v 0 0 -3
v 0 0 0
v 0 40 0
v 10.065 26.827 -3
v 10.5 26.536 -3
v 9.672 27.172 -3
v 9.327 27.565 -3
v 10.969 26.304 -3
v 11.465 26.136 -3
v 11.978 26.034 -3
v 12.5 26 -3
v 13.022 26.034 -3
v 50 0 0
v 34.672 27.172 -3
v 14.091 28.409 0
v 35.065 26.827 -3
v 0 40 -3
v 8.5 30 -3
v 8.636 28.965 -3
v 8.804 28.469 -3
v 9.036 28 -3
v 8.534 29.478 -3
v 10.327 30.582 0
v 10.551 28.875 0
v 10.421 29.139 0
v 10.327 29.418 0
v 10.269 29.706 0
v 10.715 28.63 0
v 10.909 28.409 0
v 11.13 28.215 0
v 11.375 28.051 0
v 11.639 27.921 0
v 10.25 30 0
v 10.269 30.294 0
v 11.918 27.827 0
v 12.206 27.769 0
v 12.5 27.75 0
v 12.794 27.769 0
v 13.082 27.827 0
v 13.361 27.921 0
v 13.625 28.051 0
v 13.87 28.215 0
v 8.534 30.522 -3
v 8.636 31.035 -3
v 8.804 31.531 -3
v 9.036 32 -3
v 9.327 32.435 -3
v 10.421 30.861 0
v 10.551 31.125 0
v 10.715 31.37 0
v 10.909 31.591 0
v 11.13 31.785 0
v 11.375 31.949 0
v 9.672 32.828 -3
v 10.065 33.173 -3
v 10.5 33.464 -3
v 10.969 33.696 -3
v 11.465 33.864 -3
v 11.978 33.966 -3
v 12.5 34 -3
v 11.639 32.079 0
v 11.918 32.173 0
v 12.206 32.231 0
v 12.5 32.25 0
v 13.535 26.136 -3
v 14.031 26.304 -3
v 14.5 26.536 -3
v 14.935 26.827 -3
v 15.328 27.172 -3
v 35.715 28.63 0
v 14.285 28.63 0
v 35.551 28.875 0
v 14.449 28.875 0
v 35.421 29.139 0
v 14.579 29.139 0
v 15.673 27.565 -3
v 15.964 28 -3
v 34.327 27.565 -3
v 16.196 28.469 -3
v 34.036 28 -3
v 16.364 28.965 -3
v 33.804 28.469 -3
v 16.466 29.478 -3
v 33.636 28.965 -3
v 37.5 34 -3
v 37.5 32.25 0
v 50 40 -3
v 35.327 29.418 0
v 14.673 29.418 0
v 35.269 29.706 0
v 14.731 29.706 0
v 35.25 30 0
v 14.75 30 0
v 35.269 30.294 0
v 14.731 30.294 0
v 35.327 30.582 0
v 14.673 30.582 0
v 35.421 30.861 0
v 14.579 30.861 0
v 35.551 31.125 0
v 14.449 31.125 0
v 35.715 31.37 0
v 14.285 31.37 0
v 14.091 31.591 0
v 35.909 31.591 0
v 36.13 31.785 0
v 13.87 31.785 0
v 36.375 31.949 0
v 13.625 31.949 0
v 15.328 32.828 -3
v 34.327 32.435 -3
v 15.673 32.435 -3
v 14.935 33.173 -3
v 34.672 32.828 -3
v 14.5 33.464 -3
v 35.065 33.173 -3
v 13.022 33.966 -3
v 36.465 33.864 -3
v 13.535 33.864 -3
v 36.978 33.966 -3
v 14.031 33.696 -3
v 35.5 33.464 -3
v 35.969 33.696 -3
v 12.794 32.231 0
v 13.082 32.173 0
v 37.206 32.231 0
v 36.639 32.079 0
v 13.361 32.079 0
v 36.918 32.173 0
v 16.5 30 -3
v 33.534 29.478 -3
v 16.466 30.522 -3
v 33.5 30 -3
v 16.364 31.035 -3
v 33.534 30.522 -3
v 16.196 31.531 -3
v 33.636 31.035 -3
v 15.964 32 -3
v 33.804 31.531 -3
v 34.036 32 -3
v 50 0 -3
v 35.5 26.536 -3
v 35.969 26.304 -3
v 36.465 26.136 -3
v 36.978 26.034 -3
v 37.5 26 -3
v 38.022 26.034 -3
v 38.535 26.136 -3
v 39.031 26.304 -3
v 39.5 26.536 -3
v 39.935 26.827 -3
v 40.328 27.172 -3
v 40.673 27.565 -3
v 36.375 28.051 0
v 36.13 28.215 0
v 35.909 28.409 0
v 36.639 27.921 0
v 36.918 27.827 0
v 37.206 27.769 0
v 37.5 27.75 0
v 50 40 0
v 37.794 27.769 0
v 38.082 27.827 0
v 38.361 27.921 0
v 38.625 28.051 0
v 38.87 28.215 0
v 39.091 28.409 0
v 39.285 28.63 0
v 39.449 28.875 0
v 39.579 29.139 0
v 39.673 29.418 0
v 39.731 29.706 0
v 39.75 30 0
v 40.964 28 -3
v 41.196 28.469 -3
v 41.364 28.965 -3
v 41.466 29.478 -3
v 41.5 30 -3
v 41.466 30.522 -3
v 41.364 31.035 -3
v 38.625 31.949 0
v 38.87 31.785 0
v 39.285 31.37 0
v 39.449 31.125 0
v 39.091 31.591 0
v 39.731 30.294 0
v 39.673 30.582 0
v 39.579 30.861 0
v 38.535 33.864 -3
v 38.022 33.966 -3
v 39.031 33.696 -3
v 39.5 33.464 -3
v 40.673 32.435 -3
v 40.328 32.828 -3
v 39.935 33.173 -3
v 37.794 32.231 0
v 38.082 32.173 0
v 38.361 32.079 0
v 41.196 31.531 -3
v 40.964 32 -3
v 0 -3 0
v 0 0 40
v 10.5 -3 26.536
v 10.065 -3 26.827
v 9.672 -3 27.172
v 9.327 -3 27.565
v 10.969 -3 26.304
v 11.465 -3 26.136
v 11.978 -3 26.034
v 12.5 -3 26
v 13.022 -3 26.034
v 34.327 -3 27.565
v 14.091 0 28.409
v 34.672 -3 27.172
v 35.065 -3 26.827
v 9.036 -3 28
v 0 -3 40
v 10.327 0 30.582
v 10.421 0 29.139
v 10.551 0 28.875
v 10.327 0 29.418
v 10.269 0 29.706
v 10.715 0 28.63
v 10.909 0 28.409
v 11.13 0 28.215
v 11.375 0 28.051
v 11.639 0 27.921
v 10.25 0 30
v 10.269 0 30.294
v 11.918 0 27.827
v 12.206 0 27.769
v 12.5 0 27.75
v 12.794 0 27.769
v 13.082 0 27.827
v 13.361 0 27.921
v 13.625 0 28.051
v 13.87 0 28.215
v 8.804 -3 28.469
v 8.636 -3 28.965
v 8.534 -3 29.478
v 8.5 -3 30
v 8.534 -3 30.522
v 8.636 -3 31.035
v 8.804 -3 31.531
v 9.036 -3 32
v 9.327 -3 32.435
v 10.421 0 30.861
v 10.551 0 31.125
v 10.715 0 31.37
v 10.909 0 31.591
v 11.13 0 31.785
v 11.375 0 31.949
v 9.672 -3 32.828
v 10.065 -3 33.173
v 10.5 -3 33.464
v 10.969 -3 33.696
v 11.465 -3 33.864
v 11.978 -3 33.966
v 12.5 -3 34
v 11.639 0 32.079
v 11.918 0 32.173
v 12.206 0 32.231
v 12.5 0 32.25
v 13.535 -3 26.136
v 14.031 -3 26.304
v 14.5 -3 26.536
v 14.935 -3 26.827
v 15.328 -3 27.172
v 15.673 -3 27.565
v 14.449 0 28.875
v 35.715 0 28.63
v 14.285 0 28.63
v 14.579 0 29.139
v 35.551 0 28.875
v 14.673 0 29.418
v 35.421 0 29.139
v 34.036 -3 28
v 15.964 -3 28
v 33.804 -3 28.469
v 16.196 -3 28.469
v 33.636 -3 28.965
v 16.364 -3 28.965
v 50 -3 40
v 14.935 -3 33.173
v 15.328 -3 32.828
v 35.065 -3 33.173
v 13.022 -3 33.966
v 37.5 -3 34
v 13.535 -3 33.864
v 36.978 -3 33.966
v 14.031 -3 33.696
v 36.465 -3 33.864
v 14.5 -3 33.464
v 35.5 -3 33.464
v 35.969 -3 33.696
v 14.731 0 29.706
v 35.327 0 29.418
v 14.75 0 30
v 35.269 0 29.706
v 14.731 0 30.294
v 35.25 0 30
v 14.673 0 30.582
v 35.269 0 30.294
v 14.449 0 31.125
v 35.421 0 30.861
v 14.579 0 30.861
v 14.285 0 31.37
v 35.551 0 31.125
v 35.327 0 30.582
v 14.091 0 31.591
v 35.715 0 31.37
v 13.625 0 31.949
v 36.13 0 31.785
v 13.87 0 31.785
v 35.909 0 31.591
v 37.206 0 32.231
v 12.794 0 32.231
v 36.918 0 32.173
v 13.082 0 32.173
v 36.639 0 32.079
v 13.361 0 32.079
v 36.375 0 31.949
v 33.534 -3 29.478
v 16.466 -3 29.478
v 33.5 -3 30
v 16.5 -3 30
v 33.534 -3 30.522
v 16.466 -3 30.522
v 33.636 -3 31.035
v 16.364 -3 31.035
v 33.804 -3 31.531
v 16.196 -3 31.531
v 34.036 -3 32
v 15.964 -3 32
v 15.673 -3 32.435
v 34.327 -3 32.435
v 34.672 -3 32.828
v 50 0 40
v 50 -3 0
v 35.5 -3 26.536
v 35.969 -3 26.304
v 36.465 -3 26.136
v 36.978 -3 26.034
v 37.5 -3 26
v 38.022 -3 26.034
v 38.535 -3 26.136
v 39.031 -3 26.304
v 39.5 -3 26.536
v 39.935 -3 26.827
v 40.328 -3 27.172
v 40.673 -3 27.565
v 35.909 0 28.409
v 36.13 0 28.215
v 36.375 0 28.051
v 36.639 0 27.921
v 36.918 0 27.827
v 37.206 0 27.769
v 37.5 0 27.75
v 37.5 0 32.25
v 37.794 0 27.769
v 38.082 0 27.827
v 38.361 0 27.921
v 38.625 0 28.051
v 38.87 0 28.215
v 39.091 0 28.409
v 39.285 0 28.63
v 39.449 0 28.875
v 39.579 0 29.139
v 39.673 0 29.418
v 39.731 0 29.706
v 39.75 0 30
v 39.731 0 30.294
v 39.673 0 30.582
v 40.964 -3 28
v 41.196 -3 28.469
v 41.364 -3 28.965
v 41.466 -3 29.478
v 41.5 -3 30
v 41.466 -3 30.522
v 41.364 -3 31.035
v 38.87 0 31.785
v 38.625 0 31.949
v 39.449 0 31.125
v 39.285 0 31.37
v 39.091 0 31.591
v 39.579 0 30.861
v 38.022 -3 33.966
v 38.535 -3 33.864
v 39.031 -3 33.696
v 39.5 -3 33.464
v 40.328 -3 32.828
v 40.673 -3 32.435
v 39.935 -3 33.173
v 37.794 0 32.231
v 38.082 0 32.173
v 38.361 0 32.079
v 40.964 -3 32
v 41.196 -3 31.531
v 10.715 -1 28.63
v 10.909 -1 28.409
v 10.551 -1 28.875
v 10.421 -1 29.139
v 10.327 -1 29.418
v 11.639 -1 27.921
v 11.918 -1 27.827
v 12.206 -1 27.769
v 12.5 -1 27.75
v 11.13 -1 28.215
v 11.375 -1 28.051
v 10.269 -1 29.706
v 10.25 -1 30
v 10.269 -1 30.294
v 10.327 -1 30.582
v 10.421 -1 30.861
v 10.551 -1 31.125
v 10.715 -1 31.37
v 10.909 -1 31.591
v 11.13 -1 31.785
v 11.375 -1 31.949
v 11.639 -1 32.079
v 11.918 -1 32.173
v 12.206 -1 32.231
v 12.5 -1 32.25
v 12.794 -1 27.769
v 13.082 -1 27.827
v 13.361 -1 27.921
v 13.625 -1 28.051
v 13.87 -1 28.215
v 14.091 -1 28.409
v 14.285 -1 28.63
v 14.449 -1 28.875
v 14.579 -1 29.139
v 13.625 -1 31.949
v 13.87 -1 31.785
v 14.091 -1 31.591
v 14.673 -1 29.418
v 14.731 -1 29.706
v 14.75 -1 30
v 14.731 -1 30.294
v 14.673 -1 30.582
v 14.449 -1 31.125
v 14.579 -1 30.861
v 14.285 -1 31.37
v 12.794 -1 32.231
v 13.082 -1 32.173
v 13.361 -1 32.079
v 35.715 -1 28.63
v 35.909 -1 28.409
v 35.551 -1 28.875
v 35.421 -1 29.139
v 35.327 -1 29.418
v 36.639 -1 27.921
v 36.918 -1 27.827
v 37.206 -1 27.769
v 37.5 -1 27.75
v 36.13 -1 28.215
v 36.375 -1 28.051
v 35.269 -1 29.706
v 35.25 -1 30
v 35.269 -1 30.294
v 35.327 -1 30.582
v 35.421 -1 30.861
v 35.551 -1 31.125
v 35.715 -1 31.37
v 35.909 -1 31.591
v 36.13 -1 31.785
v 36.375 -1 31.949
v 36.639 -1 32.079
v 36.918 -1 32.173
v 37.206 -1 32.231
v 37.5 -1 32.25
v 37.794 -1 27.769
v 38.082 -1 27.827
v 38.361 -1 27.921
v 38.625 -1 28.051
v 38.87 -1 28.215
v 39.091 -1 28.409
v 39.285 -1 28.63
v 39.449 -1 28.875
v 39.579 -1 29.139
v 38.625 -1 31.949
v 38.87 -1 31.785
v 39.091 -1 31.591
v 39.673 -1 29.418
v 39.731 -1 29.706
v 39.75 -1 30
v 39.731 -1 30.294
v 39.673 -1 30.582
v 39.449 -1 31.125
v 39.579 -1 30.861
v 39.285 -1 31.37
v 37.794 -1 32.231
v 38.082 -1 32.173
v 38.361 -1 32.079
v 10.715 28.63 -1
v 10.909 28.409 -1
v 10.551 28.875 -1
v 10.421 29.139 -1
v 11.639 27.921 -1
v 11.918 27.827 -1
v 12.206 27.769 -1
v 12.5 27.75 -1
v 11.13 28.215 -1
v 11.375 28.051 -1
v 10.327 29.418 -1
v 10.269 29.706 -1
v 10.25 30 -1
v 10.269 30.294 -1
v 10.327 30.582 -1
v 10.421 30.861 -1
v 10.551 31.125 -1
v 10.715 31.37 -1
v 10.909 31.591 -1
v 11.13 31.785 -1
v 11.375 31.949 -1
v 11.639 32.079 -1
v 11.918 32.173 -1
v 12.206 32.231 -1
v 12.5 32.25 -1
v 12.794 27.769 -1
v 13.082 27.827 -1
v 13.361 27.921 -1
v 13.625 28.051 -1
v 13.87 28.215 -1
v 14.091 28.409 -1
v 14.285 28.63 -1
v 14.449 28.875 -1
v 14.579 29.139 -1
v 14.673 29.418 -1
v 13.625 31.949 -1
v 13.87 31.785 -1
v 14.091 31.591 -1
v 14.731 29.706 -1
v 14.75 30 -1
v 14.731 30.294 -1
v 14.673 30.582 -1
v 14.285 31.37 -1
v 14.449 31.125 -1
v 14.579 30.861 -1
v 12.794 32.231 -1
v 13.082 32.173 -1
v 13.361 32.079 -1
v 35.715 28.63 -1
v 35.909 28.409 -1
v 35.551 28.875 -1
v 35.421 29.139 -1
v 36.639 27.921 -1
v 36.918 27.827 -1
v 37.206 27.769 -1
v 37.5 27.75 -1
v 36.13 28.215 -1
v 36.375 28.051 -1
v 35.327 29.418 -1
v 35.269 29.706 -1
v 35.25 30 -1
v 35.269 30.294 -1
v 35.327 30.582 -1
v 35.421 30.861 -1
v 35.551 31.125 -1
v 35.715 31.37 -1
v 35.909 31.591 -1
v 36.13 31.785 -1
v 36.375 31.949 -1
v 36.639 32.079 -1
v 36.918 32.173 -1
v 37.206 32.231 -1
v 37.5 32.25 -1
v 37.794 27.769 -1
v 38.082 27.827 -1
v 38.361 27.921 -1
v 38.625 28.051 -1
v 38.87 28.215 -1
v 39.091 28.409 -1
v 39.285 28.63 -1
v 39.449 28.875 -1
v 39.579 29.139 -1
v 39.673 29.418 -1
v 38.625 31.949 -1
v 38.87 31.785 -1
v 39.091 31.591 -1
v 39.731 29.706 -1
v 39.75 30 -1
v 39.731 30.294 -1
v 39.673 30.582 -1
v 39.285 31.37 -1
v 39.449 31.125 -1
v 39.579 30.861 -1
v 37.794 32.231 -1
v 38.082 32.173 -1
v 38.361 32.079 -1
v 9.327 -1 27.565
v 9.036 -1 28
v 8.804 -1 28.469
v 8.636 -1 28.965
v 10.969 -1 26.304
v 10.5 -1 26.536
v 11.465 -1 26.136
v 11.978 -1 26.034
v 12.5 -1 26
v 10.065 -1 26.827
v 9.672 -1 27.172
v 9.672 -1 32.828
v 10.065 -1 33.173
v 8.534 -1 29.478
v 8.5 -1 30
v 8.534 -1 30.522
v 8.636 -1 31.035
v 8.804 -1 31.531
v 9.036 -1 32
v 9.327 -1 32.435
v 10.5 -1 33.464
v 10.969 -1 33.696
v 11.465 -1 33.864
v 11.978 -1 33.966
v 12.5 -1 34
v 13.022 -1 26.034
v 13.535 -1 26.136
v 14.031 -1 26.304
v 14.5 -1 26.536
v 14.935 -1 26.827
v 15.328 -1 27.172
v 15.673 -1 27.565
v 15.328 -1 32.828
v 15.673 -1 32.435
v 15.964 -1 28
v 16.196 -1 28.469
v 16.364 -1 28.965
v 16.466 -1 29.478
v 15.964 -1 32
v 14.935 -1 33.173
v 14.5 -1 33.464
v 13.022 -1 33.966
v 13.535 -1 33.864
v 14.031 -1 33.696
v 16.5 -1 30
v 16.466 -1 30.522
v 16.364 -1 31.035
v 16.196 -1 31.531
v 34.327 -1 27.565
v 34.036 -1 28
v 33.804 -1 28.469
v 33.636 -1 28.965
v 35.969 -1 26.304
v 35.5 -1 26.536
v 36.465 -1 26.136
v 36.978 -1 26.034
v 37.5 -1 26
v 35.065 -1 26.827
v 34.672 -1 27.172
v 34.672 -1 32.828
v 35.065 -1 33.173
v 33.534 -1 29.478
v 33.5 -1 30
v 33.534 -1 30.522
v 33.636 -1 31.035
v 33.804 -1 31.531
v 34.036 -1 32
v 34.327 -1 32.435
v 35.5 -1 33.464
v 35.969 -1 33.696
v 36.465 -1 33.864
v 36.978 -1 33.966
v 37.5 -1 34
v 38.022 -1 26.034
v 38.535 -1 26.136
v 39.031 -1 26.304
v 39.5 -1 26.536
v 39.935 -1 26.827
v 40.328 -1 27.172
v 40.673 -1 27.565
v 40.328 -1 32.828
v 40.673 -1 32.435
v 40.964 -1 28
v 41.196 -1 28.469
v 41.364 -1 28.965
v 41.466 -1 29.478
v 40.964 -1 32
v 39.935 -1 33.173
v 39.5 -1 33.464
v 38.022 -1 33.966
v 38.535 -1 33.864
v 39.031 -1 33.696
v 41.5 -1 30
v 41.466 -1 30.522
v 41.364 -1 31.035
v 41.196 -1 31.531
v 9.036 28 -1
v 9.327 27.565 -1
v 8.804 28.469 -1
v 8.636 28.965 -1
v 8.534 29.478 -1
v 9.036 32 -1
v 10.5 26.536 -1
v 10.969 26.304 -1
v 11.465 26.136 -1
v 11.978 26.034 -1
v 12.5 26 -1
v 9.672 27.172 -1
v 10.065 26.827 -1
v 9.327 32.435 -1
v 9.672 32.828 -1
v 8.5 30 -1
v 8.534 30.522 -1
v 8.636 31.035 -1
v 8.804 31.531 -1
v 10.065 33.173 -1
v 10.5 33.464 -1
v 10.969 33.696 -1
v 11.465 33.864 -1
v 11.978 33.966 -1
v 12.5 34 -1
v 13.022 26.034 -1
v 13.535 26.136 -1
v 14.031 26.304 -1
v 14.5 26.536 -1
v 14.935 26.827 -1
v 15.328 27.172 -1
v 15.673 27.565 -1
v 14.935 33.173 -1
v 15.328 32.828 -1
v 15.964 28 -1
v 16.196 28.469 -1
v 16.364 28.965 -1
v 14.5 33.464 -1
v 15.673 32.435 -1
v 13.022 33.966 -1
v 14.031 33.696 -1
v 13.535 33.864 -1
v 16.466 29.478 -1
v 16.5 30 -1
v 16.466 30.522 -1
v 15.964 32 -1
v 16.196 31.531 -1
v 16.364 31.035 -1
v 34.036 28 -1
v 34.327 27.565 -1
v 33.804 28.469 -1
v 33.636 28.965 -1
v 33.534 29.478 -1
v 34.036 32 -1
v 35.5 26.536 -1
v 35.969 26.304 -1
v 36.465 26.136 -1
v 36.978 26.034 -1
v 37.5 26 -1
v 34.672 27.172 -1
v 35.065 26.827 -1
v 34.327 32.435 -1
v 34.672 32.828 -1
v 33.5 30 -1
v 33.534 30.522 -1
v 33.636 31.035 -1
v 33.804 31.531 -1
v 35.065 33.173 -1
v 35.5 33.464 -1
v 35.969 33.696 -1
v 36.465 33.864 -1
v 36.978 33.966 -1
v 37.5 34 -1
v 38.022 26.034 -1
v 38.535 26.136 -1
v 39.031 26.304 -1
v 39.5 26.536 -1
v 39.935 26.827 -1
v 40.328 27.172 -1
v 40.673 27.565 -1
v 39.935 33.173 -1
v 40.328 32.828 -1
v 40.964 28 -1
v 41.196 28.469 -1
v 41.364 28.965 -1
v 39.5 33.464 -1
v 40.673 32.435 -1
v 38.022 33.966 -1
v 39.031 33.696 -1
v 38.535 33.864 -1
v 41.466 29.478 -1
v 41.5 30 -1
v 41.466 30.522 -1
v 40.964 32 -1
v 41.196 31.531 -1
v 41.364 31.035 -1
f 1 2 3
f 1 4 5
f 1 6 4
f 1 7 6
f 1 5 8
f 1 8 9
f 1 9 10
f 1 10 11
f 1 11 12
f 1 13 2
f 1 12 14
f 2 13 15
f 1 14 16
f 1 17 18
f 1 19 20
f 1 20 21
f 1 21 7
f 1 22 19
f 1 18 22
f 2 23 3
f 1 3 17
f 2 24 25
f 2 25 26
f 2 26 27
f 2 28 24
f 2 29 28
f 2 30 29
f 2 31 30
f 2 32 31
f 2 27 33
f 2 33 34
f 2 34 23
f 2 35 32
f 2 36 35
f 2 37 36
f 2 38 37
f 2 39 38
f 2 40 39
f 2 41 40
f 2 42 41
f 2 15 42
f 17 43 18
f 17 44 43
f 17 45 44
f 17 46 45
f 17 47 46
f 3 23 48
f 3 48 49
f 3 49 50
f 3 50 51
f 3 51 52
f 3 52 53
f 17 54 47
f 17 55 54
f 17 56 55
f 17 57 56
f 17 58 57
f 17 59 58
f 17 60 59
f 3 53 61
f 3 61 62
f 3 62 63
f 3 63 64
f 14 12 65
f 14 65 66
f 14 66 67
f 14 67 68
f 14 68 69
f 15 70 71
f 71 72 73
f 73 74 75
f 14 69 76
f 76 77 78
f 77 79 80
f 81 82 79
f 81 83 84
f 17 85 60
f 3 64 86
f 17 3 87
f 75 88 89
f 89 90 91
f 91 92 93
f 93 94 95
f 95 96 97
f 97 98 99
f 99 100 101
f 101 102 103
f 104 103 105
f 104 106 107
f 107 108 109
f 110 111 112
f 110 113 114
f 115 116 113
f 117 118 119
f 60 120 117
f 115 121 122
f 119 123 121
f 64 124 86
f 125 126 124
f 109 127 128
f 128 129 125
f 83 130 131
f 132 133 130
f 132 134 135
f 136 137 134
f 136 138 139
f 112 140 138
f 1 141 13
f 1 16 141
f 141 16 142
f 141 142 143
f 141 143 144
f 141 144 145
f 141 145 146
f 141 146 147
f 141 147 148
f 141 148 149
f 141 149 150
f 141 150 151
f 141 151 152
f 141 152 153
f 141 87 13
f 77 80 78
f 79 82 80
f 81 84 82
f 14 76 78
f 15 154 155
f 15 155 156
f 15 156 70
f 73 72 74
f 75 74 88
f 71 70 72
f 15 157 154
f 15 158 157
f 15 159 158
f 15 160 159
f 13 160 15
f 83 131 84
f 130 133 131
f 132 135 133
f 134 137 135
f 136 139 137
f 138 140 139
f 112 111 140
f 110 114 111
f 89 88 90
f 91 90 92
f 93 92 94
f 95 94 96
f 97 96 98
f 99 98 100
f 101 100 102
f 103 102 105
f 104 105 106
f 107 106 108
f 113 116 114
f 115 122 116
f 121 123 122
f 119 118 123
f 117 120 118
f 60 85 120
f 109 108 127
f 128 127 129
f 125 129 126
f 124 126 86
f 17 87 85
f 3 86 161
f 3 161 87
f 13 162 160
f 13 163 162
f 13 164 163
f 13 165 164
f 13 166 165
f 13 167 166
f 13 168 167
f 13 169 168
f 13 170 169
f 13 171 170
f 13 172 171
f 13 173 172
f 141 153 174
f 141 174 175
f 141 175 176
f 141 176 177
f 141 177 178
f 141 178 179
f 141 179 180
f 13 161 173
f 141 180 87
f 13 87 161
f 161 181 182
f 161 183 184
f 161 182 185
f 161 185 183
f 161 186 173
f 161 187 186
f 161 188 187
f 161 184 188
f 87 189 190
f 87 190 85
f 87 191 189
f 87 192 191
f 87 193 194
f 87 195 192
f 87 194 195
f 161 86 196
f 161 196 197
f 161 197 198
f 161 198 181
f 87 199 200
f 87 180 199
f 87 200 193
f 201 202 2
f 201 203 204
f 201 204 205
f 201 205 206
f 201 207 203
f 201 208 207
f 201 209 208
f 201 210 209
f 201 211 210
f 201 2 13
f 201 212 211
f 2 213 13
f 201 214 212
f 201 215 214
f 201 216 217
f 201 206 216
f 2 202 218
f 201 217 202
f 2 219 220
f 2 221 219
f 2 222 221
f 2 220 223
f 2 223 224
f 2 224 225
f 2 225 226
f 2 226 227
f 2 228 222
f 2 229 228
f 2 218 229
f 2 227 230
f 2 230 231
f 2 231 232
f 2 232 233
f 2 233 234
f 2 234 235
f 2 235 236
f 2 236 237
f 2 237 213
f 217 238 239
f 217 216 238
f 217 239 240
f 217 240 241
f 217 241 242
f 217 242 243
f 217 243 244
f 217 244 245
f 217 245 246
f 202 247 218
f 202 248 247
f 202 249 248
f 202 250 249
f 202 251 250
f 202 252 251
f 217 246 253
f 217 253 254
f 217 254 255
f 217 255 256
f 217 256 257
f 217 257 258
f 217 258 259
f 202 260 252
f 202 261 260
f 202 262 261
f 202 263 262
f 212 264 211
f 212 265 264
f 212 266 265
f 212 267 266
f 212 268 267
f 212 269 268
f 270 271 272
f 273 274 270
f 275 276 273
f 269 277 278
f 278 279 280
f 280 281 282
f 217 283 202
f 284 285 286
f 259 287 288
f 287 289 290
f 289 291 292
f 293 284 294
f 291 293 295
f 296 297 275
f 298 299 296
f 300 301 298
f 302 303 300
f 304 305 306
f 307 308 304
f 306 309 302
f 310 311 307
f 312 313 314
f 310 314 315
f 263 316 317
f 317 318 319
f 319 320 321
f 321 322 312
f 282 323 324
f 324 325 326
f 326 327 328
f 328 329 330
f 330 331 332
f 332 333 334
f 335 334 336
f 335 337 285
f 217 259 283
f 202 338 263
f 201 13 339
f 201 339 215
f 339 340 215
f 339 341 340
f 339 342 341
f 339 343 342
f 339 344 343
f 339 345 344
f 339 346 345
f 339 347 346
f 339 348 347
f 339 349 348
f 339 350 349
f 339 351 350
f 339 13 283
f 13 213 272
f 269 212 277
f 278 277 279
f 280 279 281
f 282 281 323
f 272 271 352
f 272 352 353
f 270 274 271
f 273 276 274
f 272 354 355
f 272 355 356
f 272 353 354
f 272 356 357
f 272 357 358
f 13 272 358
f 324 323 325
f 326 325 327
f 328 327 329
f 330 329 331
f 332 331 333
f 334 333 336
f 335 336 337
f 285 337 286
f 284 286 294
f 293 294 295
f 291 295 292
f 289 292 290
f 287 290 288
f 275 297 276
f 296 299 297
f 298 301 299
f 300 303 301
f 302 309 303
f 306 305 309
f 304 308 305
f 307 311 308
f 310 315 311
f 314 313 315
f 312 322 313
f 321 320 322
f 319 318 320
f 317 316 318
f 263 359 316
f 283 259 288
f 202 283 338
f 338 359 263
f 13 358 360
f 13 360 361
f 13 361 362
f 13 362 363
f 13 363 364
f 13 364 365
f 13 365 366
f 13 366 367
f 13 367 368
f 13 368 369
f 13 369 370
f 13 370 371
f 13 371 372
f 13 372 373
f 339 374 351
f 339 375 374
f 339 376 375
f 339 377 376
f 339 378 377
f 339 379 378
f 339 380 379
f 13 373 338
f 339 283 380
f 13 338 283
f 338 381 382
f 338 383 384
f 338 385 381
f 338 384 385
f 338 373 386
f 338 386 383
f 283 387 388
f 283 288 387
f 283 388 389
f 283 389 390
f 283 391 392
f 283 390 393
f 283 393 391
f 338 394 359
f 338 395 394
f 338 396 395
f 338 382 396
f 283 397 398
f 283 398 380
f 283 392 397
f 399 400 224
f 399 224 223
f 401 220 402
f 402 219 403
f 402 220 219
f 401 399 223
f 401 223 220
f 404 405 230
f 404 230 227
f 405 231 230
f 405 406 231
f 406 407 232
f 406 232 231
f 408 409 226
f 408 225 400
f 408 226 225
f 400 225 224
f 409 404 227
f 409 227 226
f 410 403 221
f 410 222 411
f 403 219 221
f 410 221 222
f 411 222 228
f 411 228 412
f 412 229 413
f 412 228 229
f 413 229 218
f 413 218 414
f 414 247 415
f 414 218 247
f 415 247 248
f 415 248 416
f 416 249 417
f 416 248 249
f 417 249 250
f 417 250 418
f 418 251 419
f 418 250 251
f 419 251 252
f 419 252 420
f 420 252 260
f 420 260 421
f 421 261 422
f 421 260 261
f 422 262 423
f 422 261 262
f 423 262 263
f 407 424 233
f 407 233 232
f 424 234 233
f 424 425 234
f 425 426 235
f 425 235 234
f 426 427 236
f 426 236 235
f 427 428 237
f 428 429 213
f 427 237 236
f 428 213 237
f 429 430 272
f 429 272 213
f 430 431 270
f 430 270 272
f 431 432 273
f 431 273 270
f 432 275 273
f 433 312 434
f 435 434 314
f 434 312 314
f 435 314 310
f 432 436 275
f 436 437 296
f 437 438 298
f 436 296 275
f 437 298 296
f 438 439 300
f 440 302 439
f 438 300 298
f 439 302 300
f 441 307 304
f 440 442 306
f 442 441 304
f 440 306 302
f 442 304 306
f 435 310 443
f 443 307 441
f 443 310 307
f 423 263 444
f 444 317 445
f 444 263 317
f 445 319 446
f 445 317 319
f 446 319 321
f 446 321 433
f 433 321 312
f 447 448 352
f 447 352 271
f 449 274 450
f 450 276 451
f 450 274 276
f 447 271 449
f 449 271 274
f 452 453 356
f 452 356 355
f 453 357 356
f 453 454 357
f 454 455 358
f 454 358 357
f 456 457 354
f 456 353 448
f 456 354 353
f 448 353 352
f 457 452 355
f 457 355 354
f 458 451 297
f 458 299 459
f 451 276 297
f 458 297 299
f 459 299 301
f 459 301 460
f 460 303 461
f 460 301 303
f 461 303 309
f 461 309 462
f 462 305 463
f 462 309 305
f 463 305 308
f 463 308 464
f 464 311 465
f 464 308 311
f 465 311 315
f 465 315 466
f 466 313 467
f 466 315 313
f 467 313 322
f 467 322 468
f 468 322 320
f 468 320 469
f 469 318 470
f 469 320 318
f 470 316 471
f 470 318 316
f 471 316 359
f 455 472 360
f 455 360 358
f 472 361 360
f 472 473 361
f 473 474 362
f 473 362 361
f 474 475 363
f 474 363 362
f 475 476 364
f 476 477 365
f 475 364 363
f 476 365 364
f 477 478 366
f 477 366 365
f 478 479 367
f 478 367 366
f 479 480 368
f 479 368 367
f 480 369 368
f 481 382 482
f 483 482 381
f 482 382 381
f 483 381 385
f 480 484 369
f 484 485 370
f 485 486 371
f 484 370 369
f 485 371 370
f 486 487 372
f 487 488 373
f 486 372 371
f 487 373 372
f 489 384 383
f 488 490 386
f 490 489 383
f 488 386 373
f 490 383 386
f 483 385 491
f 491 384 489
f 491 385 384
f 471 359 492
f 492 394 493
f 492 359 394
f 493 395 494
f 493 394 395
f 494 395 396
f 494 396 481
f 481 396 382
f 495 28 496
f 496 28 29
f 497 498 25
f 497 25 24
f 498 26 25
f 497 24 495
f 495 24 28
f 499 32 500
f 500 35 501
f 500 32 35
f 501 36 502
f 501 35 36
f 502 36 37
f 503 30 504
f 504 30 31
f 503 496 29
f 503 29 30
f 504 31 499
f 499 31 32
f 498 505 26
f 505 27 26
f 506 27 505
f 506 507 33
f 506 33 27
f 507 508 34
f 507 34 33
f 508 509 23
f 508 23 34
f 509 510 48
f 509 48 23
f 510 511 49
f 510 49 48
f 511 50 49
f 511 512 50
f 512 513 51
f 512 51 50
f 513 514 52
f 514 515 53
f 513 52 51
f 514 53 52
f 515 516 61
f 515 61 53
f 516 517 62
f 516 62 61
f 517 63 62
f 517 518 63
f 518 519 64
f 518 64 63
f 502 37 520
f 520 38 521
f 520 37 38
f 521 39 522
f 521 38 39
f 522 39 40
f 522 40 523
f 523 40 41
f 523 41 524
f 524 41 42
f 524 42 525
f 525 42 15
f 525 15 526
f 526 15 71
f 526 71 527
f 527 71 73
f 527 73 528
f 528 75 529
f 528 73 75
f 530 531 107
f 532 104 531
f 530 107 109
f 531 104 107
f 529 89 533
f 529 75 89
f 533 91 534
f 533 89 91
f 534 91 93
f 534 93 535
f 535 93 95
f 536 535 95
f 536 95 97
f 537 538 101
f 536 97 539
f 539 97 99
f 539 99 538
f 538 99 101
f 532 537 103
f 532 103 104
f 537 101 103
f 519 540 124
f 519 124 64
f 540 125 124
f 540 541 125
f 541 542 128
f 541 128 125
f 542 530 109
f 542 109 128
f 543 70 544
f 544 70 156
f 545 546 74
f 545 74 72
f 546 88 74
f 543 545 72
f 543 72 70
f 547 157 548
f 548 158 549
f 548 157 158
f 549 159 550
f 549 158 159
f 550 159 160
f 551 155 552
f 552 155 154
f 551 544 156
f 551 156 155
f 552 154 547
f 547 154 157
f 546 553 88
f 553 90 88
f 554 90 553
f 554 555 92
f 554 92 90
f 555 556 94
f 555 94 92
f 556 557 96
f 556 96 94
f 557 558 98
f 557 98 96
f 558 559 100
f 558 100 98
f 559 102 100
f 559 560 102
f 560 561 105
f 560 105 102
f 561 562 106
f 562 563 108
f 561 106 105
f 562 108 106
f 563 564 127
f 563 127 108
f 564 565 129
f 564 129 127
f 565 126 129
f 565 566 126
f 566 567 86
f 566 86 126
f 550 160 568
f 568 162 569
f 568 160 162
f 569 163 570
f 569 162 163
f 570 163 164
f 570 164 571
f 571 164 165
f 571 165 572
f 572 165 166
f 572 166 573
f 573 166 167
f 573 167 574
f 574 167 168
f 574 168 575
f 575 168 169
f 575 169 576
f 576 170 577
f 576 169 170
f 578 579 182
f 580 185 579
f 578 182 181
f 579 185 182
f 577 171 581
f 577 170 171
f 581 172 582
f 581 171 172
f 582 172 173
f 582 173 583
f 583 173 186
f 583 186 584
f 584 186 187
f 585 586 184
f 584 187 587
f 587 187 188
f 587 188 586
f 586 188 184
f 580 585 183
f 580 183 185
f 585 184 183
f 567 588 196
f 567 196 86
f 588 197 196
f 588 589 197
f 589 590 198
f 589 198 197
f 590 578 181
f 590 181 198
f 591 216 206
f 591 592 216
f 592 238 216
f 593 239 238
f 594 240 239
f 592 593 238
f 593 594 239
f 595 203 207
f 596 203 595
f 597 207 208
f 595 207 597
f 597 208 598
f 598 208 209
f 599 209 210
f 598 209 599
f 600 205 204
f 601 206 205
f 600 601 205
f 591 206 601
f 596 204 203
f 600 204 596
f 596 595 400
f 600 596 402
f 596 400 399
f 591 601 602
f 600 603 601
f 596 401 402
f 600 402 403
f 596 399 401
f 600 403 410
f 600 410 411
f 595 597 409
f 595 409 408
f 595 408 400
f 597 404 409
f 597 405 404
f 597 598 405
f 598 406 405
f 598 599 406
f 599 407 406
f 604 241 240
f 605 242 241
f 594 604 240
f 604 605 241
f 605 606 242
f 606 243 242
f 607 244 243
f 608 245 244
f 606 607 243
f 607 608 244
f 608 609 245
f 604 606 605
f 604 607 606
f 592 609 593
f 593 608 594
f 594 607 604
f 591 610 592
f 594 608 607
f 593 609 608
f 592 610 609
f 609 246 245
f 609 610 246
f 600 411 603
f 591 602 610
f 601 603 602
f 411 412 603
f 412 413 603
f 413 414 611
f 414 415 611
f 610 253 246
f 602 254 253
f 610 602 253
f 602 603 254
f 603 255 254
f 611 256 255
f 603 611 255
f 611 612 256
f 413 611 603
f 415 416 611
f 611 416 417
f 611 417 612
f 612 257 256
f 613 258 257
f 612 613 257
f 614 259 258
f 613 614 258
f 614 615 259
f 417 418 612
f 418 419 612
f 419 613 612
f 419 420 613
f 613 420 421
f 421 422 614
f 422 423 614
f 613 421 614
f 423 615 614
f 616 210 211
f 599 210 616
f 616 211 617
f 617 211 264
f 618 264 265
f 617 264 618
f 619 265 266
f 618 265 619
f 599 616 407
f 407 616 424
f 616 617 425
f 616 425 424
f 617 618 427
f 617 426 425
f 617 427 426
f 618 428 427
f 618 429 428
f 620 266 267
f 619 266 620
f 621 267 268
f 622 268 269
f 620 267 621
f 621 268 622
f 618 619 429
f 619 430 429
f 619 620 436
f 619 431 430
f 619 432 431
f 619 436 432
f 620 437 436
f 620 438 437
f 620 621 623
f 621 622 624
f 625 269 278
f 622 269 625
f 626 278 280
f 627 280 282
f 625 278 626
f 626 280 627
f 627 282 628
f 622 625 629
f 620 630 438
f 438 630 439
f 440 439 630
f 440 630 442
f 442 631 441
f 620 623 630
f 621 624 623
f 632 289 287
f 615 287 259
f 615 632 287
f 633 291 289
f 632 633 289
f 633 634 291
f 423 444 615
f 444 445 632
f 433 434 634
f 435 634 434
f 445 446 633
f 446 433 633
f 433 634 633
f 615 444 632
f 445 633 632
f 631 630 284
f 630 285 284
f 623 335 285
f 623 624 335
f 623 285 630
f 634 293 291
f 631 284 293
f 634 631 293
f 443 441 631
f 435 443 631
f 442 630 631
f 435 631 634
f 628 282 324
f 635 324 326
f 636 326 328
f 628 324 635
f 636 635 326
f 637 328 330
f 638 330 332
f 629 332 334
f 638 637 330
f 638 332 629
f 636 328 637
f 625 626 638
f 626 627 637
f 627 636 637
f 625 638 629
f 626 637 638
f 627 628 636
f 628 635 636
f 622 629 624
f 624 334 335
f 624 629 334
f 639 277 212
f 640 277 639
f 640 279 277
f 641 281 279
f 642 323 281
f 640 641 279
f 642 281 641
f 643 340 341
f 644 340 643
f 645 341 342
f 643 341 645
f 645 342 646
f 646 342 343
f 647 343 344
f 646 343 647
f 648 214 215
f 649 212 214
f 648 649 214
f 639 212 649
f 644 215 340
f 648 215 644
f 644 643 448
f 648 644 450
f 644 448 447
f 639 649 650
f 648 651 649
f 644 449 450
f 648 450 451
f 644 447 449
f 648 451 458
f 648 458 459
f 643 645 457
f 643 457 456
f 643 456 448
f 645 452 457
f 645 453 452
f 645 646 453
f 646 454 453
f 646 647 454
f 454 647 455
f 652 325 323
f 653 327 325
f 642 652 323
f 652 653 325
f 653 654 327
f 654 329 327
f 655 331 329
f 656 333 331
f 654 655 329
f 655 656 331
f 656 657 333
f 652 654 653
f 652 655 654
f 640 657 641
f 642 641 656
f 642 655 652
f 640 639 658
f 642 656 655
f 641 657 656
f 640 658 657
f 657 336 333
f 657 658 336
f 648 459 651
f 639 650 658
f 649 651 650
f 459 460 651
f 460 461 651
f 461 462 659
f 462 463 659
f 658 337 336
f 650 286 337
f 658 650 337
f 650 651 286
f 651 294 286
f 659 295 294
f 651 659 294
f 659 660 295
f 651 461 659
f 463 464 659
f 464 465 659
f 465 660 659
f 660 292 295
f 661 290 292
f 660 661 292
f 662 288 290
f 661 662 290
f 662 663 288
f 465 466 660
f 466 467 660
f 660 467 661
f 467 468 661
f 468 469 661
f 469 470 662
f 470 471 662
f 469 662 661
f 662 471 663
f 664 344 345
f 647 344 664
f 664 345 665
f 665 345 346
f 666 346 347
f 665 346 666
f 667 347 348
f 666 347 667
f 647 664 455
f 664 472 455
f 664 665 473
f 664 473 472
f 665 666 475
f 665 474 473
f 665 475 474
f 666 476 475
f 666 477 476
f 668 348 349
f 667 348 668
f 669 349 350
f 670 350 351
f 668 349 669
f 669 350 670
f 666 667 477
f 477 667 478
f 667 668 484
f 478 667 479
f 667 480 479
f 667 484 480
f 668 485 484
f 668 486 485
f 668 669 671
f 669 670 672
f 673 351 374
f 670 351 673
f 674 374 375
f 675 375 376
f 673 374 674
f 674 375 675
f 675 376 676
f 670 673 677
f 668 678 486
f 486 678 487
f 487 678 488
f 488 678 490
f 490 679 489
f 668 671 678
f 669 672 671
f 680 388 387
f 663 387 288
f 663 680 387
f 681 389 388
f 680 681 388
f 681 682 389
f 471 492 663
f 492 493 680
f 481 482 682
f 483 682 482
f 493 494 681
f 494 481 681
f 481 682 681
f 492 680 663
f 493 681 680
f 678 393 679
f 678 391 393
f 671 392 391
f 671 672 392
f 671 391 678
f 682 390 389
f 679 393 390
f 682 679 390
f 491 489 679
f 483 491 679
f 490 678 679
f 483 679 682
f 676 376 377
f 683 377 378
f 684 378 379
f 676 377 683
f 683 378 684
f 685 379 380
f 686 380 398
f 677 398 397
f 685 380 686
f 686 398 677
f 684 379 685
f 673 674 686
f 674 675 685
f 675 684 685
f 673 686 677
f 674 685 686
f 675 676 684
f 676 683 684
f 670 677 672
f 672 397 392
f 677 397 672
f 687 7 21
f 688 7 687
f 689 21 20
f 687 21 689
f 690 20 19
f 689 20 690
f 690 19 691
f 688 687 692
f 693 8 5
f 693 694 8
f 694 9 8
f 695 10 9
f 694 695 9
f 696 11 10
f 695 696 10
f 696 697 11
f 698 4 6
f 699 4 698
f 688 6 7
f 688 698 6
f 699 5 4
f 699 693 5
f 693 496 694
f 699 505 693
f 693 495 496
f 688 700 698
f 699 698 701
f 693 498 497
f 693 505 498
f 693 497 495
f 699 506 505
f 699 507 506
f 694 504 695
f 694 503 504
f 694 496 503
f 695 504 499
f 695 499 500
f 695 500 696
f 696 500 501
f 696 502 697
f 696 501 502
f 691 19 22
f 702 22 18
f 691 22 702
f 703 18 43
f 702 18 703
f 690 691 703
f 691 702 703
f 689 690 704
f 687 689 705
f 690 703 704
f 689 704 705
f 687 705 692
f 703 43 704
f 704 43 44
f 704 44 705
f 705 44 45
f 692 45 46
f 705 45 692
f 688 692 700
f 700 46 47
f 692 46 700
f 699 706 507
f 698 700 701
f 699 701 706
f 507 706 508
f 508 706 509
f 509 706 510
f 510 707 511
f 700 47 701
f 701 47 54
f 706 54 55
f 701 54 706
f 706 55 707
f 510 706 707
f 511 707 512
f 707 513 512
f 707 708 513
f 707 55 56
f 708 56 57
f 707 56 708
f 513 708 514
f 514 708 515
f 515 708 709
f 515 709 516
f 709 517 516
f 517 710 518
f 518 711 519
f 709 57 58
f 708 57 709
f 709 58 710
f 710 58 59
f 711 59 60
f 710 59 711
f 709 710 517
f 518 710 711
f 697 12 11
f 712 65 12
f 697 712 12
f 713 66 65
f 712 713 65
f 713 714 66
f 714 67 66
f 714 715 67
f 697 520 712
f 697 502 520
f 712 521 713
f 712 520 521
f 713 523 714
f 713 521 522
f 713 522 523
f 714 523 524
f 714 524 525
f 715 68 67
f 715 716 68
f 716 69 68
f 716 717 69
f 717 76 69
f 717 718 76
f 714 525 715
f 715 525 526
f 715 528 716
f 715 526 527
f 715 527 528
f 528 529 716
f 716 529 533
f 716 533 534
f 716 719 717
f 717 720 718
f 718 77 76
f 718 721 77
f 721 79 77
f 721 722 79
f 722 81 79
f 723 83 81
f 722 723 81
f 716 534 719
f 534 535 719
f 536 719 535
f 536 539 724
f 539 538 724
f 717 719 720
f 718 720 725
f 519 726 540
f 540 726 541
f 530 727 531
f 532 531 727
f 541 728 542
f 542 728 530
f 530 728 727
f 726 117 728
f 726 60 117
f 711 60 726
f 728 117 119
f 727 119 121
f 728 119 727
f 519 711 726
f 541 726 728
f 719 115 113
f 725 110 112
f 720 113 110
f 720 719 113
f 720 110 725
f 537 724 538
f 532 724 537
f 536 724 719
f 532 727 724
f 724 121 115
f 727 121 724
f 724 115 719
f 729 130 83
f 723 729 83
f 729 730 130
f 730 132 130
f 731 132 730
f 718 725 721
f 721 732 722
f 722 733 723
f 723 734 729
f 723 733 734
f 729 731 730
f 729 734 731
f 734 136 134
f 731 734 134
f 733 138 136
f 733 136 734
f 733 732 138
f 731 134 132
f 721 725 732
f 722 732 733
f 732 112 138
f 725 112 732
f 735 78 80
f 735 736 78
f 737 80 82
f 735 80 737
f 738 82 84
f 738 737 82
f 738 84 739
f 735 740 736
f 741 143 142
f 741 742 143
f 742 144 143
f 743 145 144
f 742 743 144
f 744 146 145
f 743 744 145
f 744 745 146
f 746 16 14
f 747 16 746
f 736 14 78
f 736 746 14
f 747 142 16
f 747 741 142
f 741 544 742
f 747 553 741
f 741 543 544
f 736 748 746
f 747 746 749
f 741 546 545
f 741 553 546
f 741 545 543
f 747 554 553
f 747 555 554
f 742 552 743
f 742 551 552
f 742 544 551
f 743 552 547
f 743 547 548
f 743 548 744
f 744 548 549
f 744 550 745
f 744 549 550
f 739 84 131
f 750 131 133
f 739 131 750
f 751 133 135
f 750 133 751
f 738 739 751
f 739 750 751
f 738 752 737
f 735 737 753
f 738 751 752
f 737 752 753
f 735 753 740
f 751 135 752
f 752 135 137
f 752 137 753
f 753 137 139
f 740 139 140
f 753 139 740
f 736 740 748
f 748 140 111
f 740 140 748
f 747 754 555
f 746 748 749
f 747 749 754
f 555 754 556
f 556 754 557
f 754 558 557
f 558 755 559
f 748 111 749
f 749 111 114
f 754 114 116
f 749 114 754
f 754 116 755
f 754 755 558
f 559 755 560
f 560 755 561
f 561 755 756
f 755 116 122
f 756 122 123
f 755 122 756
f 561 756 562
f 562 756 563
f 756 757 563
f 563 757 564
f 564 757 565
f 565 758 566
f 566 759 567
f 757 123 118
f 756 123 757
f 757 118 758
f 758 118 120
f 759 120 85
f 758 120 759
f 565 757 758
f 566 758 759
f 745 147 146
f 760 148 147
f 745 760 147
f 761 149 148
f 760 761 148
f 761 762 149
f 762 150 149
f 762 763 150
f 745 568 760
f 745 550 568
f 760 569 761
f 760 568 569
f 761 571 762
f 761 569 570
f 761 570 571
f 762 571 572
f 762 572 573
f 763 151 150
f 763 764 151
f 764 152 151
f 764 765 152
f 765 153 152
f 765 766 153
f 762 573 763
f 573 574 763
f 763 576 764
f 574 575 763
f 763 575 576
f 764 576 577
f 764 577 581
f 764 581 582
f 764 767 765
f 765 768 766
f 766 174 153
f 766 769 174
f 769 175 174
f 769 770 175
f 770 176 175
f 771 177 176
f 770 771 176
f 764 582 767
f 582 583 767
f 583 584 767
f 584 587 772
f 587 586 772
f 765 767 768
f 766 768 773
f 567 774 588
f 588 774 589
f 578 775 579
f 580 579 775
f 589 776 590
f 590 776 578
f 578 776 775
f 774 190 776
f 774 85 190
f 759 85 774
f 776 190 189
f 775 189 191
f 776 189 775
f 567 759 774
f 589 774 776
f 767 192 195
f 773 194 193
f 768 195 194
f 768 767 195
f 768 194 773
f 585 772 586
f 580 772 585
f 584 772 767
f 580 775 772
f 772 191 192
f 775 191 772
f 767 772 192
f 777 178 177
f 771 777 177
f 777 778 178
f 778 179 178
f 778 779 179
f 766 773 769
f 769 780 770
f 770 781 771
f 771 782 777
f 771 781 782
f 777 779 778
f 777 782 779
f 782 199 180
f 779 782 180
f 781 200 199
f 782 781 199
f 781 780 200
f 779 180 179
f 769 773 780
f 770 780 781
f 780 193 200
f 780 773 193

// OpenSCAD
// L-bracket with countersunk holes
// 内側コーナーが原点

// パラメータ
width      = 50;   // 幅 (X)
depth      = 40;   // 水平面の奥行き (Y)
height     = 40;   // 垂直面の高さ (Z)
thickness  = 3;    // 板厚

hole_dia   = 4.5;  // 貫通穴 Φ
cs_dia     = 8;    // 皿座面 Φ
cs_depth   = 2;    // 皿座面 深さ
edge_off   = 10;   // 縁からのオフセット
x_off      = 12.5; // 中心線からの左右オフセット

eps = 0.01;

// 皿穴 (Z軸方向に貫通、皿座面は上(+Z)側)
// h: 板厚, 座面は z = h 側(外側)に開く
module countersink(h) {
    // 貫通穴
    translate([0, 0, -eps])
        cylinder(h = h + 2*eps, d = hole_dia, $fn = 48);
    // 皿座面(外側 = +Z 側)
    translate([0, 0, h - cs_depth])
        cylinder(h = cs_depth + eps, d = cs_dia, $fn = 48);
}

difference() {
    union() {
        // 水平面 (+Y 方向に伸びる、厚みは -Z 側)
        translate([0, 0, -thickness])
            cube([width, depth, thickness]);
        // 垂直面 (+Z 方向に伸びる、厚みは -Y 側)
        translate([0, -thickness, 0])
            cube([width, thickness, height]);
    }

    // --- 水平面の穴 (外側 = 下面 -Z) ---
    // 水平面の板は z: -thickness .. 0
    // 座面を下側(-Z, 外側)に向けるため反転して配置
    for (dx = [-x_off, x_off]) {
        translate([width/2 + dx, depth - edge_off, 0])
            rotate([180, 0, 0])
                countersink(thickness);
    }

    // --- 垂直面の穴 (外側 = -Y 面) ---
    // 垂直面の板は y: -thickness .. 0
    // 座面を -Y(外側)に向けるため X軸まわりに回転して配置
    for (dx = [-x_off, x_off]) {
        translate([width/2 + dx, 0, height - edge_off])
            rotate([90, 0, 0])
                countersink(thickness);
    }
}
